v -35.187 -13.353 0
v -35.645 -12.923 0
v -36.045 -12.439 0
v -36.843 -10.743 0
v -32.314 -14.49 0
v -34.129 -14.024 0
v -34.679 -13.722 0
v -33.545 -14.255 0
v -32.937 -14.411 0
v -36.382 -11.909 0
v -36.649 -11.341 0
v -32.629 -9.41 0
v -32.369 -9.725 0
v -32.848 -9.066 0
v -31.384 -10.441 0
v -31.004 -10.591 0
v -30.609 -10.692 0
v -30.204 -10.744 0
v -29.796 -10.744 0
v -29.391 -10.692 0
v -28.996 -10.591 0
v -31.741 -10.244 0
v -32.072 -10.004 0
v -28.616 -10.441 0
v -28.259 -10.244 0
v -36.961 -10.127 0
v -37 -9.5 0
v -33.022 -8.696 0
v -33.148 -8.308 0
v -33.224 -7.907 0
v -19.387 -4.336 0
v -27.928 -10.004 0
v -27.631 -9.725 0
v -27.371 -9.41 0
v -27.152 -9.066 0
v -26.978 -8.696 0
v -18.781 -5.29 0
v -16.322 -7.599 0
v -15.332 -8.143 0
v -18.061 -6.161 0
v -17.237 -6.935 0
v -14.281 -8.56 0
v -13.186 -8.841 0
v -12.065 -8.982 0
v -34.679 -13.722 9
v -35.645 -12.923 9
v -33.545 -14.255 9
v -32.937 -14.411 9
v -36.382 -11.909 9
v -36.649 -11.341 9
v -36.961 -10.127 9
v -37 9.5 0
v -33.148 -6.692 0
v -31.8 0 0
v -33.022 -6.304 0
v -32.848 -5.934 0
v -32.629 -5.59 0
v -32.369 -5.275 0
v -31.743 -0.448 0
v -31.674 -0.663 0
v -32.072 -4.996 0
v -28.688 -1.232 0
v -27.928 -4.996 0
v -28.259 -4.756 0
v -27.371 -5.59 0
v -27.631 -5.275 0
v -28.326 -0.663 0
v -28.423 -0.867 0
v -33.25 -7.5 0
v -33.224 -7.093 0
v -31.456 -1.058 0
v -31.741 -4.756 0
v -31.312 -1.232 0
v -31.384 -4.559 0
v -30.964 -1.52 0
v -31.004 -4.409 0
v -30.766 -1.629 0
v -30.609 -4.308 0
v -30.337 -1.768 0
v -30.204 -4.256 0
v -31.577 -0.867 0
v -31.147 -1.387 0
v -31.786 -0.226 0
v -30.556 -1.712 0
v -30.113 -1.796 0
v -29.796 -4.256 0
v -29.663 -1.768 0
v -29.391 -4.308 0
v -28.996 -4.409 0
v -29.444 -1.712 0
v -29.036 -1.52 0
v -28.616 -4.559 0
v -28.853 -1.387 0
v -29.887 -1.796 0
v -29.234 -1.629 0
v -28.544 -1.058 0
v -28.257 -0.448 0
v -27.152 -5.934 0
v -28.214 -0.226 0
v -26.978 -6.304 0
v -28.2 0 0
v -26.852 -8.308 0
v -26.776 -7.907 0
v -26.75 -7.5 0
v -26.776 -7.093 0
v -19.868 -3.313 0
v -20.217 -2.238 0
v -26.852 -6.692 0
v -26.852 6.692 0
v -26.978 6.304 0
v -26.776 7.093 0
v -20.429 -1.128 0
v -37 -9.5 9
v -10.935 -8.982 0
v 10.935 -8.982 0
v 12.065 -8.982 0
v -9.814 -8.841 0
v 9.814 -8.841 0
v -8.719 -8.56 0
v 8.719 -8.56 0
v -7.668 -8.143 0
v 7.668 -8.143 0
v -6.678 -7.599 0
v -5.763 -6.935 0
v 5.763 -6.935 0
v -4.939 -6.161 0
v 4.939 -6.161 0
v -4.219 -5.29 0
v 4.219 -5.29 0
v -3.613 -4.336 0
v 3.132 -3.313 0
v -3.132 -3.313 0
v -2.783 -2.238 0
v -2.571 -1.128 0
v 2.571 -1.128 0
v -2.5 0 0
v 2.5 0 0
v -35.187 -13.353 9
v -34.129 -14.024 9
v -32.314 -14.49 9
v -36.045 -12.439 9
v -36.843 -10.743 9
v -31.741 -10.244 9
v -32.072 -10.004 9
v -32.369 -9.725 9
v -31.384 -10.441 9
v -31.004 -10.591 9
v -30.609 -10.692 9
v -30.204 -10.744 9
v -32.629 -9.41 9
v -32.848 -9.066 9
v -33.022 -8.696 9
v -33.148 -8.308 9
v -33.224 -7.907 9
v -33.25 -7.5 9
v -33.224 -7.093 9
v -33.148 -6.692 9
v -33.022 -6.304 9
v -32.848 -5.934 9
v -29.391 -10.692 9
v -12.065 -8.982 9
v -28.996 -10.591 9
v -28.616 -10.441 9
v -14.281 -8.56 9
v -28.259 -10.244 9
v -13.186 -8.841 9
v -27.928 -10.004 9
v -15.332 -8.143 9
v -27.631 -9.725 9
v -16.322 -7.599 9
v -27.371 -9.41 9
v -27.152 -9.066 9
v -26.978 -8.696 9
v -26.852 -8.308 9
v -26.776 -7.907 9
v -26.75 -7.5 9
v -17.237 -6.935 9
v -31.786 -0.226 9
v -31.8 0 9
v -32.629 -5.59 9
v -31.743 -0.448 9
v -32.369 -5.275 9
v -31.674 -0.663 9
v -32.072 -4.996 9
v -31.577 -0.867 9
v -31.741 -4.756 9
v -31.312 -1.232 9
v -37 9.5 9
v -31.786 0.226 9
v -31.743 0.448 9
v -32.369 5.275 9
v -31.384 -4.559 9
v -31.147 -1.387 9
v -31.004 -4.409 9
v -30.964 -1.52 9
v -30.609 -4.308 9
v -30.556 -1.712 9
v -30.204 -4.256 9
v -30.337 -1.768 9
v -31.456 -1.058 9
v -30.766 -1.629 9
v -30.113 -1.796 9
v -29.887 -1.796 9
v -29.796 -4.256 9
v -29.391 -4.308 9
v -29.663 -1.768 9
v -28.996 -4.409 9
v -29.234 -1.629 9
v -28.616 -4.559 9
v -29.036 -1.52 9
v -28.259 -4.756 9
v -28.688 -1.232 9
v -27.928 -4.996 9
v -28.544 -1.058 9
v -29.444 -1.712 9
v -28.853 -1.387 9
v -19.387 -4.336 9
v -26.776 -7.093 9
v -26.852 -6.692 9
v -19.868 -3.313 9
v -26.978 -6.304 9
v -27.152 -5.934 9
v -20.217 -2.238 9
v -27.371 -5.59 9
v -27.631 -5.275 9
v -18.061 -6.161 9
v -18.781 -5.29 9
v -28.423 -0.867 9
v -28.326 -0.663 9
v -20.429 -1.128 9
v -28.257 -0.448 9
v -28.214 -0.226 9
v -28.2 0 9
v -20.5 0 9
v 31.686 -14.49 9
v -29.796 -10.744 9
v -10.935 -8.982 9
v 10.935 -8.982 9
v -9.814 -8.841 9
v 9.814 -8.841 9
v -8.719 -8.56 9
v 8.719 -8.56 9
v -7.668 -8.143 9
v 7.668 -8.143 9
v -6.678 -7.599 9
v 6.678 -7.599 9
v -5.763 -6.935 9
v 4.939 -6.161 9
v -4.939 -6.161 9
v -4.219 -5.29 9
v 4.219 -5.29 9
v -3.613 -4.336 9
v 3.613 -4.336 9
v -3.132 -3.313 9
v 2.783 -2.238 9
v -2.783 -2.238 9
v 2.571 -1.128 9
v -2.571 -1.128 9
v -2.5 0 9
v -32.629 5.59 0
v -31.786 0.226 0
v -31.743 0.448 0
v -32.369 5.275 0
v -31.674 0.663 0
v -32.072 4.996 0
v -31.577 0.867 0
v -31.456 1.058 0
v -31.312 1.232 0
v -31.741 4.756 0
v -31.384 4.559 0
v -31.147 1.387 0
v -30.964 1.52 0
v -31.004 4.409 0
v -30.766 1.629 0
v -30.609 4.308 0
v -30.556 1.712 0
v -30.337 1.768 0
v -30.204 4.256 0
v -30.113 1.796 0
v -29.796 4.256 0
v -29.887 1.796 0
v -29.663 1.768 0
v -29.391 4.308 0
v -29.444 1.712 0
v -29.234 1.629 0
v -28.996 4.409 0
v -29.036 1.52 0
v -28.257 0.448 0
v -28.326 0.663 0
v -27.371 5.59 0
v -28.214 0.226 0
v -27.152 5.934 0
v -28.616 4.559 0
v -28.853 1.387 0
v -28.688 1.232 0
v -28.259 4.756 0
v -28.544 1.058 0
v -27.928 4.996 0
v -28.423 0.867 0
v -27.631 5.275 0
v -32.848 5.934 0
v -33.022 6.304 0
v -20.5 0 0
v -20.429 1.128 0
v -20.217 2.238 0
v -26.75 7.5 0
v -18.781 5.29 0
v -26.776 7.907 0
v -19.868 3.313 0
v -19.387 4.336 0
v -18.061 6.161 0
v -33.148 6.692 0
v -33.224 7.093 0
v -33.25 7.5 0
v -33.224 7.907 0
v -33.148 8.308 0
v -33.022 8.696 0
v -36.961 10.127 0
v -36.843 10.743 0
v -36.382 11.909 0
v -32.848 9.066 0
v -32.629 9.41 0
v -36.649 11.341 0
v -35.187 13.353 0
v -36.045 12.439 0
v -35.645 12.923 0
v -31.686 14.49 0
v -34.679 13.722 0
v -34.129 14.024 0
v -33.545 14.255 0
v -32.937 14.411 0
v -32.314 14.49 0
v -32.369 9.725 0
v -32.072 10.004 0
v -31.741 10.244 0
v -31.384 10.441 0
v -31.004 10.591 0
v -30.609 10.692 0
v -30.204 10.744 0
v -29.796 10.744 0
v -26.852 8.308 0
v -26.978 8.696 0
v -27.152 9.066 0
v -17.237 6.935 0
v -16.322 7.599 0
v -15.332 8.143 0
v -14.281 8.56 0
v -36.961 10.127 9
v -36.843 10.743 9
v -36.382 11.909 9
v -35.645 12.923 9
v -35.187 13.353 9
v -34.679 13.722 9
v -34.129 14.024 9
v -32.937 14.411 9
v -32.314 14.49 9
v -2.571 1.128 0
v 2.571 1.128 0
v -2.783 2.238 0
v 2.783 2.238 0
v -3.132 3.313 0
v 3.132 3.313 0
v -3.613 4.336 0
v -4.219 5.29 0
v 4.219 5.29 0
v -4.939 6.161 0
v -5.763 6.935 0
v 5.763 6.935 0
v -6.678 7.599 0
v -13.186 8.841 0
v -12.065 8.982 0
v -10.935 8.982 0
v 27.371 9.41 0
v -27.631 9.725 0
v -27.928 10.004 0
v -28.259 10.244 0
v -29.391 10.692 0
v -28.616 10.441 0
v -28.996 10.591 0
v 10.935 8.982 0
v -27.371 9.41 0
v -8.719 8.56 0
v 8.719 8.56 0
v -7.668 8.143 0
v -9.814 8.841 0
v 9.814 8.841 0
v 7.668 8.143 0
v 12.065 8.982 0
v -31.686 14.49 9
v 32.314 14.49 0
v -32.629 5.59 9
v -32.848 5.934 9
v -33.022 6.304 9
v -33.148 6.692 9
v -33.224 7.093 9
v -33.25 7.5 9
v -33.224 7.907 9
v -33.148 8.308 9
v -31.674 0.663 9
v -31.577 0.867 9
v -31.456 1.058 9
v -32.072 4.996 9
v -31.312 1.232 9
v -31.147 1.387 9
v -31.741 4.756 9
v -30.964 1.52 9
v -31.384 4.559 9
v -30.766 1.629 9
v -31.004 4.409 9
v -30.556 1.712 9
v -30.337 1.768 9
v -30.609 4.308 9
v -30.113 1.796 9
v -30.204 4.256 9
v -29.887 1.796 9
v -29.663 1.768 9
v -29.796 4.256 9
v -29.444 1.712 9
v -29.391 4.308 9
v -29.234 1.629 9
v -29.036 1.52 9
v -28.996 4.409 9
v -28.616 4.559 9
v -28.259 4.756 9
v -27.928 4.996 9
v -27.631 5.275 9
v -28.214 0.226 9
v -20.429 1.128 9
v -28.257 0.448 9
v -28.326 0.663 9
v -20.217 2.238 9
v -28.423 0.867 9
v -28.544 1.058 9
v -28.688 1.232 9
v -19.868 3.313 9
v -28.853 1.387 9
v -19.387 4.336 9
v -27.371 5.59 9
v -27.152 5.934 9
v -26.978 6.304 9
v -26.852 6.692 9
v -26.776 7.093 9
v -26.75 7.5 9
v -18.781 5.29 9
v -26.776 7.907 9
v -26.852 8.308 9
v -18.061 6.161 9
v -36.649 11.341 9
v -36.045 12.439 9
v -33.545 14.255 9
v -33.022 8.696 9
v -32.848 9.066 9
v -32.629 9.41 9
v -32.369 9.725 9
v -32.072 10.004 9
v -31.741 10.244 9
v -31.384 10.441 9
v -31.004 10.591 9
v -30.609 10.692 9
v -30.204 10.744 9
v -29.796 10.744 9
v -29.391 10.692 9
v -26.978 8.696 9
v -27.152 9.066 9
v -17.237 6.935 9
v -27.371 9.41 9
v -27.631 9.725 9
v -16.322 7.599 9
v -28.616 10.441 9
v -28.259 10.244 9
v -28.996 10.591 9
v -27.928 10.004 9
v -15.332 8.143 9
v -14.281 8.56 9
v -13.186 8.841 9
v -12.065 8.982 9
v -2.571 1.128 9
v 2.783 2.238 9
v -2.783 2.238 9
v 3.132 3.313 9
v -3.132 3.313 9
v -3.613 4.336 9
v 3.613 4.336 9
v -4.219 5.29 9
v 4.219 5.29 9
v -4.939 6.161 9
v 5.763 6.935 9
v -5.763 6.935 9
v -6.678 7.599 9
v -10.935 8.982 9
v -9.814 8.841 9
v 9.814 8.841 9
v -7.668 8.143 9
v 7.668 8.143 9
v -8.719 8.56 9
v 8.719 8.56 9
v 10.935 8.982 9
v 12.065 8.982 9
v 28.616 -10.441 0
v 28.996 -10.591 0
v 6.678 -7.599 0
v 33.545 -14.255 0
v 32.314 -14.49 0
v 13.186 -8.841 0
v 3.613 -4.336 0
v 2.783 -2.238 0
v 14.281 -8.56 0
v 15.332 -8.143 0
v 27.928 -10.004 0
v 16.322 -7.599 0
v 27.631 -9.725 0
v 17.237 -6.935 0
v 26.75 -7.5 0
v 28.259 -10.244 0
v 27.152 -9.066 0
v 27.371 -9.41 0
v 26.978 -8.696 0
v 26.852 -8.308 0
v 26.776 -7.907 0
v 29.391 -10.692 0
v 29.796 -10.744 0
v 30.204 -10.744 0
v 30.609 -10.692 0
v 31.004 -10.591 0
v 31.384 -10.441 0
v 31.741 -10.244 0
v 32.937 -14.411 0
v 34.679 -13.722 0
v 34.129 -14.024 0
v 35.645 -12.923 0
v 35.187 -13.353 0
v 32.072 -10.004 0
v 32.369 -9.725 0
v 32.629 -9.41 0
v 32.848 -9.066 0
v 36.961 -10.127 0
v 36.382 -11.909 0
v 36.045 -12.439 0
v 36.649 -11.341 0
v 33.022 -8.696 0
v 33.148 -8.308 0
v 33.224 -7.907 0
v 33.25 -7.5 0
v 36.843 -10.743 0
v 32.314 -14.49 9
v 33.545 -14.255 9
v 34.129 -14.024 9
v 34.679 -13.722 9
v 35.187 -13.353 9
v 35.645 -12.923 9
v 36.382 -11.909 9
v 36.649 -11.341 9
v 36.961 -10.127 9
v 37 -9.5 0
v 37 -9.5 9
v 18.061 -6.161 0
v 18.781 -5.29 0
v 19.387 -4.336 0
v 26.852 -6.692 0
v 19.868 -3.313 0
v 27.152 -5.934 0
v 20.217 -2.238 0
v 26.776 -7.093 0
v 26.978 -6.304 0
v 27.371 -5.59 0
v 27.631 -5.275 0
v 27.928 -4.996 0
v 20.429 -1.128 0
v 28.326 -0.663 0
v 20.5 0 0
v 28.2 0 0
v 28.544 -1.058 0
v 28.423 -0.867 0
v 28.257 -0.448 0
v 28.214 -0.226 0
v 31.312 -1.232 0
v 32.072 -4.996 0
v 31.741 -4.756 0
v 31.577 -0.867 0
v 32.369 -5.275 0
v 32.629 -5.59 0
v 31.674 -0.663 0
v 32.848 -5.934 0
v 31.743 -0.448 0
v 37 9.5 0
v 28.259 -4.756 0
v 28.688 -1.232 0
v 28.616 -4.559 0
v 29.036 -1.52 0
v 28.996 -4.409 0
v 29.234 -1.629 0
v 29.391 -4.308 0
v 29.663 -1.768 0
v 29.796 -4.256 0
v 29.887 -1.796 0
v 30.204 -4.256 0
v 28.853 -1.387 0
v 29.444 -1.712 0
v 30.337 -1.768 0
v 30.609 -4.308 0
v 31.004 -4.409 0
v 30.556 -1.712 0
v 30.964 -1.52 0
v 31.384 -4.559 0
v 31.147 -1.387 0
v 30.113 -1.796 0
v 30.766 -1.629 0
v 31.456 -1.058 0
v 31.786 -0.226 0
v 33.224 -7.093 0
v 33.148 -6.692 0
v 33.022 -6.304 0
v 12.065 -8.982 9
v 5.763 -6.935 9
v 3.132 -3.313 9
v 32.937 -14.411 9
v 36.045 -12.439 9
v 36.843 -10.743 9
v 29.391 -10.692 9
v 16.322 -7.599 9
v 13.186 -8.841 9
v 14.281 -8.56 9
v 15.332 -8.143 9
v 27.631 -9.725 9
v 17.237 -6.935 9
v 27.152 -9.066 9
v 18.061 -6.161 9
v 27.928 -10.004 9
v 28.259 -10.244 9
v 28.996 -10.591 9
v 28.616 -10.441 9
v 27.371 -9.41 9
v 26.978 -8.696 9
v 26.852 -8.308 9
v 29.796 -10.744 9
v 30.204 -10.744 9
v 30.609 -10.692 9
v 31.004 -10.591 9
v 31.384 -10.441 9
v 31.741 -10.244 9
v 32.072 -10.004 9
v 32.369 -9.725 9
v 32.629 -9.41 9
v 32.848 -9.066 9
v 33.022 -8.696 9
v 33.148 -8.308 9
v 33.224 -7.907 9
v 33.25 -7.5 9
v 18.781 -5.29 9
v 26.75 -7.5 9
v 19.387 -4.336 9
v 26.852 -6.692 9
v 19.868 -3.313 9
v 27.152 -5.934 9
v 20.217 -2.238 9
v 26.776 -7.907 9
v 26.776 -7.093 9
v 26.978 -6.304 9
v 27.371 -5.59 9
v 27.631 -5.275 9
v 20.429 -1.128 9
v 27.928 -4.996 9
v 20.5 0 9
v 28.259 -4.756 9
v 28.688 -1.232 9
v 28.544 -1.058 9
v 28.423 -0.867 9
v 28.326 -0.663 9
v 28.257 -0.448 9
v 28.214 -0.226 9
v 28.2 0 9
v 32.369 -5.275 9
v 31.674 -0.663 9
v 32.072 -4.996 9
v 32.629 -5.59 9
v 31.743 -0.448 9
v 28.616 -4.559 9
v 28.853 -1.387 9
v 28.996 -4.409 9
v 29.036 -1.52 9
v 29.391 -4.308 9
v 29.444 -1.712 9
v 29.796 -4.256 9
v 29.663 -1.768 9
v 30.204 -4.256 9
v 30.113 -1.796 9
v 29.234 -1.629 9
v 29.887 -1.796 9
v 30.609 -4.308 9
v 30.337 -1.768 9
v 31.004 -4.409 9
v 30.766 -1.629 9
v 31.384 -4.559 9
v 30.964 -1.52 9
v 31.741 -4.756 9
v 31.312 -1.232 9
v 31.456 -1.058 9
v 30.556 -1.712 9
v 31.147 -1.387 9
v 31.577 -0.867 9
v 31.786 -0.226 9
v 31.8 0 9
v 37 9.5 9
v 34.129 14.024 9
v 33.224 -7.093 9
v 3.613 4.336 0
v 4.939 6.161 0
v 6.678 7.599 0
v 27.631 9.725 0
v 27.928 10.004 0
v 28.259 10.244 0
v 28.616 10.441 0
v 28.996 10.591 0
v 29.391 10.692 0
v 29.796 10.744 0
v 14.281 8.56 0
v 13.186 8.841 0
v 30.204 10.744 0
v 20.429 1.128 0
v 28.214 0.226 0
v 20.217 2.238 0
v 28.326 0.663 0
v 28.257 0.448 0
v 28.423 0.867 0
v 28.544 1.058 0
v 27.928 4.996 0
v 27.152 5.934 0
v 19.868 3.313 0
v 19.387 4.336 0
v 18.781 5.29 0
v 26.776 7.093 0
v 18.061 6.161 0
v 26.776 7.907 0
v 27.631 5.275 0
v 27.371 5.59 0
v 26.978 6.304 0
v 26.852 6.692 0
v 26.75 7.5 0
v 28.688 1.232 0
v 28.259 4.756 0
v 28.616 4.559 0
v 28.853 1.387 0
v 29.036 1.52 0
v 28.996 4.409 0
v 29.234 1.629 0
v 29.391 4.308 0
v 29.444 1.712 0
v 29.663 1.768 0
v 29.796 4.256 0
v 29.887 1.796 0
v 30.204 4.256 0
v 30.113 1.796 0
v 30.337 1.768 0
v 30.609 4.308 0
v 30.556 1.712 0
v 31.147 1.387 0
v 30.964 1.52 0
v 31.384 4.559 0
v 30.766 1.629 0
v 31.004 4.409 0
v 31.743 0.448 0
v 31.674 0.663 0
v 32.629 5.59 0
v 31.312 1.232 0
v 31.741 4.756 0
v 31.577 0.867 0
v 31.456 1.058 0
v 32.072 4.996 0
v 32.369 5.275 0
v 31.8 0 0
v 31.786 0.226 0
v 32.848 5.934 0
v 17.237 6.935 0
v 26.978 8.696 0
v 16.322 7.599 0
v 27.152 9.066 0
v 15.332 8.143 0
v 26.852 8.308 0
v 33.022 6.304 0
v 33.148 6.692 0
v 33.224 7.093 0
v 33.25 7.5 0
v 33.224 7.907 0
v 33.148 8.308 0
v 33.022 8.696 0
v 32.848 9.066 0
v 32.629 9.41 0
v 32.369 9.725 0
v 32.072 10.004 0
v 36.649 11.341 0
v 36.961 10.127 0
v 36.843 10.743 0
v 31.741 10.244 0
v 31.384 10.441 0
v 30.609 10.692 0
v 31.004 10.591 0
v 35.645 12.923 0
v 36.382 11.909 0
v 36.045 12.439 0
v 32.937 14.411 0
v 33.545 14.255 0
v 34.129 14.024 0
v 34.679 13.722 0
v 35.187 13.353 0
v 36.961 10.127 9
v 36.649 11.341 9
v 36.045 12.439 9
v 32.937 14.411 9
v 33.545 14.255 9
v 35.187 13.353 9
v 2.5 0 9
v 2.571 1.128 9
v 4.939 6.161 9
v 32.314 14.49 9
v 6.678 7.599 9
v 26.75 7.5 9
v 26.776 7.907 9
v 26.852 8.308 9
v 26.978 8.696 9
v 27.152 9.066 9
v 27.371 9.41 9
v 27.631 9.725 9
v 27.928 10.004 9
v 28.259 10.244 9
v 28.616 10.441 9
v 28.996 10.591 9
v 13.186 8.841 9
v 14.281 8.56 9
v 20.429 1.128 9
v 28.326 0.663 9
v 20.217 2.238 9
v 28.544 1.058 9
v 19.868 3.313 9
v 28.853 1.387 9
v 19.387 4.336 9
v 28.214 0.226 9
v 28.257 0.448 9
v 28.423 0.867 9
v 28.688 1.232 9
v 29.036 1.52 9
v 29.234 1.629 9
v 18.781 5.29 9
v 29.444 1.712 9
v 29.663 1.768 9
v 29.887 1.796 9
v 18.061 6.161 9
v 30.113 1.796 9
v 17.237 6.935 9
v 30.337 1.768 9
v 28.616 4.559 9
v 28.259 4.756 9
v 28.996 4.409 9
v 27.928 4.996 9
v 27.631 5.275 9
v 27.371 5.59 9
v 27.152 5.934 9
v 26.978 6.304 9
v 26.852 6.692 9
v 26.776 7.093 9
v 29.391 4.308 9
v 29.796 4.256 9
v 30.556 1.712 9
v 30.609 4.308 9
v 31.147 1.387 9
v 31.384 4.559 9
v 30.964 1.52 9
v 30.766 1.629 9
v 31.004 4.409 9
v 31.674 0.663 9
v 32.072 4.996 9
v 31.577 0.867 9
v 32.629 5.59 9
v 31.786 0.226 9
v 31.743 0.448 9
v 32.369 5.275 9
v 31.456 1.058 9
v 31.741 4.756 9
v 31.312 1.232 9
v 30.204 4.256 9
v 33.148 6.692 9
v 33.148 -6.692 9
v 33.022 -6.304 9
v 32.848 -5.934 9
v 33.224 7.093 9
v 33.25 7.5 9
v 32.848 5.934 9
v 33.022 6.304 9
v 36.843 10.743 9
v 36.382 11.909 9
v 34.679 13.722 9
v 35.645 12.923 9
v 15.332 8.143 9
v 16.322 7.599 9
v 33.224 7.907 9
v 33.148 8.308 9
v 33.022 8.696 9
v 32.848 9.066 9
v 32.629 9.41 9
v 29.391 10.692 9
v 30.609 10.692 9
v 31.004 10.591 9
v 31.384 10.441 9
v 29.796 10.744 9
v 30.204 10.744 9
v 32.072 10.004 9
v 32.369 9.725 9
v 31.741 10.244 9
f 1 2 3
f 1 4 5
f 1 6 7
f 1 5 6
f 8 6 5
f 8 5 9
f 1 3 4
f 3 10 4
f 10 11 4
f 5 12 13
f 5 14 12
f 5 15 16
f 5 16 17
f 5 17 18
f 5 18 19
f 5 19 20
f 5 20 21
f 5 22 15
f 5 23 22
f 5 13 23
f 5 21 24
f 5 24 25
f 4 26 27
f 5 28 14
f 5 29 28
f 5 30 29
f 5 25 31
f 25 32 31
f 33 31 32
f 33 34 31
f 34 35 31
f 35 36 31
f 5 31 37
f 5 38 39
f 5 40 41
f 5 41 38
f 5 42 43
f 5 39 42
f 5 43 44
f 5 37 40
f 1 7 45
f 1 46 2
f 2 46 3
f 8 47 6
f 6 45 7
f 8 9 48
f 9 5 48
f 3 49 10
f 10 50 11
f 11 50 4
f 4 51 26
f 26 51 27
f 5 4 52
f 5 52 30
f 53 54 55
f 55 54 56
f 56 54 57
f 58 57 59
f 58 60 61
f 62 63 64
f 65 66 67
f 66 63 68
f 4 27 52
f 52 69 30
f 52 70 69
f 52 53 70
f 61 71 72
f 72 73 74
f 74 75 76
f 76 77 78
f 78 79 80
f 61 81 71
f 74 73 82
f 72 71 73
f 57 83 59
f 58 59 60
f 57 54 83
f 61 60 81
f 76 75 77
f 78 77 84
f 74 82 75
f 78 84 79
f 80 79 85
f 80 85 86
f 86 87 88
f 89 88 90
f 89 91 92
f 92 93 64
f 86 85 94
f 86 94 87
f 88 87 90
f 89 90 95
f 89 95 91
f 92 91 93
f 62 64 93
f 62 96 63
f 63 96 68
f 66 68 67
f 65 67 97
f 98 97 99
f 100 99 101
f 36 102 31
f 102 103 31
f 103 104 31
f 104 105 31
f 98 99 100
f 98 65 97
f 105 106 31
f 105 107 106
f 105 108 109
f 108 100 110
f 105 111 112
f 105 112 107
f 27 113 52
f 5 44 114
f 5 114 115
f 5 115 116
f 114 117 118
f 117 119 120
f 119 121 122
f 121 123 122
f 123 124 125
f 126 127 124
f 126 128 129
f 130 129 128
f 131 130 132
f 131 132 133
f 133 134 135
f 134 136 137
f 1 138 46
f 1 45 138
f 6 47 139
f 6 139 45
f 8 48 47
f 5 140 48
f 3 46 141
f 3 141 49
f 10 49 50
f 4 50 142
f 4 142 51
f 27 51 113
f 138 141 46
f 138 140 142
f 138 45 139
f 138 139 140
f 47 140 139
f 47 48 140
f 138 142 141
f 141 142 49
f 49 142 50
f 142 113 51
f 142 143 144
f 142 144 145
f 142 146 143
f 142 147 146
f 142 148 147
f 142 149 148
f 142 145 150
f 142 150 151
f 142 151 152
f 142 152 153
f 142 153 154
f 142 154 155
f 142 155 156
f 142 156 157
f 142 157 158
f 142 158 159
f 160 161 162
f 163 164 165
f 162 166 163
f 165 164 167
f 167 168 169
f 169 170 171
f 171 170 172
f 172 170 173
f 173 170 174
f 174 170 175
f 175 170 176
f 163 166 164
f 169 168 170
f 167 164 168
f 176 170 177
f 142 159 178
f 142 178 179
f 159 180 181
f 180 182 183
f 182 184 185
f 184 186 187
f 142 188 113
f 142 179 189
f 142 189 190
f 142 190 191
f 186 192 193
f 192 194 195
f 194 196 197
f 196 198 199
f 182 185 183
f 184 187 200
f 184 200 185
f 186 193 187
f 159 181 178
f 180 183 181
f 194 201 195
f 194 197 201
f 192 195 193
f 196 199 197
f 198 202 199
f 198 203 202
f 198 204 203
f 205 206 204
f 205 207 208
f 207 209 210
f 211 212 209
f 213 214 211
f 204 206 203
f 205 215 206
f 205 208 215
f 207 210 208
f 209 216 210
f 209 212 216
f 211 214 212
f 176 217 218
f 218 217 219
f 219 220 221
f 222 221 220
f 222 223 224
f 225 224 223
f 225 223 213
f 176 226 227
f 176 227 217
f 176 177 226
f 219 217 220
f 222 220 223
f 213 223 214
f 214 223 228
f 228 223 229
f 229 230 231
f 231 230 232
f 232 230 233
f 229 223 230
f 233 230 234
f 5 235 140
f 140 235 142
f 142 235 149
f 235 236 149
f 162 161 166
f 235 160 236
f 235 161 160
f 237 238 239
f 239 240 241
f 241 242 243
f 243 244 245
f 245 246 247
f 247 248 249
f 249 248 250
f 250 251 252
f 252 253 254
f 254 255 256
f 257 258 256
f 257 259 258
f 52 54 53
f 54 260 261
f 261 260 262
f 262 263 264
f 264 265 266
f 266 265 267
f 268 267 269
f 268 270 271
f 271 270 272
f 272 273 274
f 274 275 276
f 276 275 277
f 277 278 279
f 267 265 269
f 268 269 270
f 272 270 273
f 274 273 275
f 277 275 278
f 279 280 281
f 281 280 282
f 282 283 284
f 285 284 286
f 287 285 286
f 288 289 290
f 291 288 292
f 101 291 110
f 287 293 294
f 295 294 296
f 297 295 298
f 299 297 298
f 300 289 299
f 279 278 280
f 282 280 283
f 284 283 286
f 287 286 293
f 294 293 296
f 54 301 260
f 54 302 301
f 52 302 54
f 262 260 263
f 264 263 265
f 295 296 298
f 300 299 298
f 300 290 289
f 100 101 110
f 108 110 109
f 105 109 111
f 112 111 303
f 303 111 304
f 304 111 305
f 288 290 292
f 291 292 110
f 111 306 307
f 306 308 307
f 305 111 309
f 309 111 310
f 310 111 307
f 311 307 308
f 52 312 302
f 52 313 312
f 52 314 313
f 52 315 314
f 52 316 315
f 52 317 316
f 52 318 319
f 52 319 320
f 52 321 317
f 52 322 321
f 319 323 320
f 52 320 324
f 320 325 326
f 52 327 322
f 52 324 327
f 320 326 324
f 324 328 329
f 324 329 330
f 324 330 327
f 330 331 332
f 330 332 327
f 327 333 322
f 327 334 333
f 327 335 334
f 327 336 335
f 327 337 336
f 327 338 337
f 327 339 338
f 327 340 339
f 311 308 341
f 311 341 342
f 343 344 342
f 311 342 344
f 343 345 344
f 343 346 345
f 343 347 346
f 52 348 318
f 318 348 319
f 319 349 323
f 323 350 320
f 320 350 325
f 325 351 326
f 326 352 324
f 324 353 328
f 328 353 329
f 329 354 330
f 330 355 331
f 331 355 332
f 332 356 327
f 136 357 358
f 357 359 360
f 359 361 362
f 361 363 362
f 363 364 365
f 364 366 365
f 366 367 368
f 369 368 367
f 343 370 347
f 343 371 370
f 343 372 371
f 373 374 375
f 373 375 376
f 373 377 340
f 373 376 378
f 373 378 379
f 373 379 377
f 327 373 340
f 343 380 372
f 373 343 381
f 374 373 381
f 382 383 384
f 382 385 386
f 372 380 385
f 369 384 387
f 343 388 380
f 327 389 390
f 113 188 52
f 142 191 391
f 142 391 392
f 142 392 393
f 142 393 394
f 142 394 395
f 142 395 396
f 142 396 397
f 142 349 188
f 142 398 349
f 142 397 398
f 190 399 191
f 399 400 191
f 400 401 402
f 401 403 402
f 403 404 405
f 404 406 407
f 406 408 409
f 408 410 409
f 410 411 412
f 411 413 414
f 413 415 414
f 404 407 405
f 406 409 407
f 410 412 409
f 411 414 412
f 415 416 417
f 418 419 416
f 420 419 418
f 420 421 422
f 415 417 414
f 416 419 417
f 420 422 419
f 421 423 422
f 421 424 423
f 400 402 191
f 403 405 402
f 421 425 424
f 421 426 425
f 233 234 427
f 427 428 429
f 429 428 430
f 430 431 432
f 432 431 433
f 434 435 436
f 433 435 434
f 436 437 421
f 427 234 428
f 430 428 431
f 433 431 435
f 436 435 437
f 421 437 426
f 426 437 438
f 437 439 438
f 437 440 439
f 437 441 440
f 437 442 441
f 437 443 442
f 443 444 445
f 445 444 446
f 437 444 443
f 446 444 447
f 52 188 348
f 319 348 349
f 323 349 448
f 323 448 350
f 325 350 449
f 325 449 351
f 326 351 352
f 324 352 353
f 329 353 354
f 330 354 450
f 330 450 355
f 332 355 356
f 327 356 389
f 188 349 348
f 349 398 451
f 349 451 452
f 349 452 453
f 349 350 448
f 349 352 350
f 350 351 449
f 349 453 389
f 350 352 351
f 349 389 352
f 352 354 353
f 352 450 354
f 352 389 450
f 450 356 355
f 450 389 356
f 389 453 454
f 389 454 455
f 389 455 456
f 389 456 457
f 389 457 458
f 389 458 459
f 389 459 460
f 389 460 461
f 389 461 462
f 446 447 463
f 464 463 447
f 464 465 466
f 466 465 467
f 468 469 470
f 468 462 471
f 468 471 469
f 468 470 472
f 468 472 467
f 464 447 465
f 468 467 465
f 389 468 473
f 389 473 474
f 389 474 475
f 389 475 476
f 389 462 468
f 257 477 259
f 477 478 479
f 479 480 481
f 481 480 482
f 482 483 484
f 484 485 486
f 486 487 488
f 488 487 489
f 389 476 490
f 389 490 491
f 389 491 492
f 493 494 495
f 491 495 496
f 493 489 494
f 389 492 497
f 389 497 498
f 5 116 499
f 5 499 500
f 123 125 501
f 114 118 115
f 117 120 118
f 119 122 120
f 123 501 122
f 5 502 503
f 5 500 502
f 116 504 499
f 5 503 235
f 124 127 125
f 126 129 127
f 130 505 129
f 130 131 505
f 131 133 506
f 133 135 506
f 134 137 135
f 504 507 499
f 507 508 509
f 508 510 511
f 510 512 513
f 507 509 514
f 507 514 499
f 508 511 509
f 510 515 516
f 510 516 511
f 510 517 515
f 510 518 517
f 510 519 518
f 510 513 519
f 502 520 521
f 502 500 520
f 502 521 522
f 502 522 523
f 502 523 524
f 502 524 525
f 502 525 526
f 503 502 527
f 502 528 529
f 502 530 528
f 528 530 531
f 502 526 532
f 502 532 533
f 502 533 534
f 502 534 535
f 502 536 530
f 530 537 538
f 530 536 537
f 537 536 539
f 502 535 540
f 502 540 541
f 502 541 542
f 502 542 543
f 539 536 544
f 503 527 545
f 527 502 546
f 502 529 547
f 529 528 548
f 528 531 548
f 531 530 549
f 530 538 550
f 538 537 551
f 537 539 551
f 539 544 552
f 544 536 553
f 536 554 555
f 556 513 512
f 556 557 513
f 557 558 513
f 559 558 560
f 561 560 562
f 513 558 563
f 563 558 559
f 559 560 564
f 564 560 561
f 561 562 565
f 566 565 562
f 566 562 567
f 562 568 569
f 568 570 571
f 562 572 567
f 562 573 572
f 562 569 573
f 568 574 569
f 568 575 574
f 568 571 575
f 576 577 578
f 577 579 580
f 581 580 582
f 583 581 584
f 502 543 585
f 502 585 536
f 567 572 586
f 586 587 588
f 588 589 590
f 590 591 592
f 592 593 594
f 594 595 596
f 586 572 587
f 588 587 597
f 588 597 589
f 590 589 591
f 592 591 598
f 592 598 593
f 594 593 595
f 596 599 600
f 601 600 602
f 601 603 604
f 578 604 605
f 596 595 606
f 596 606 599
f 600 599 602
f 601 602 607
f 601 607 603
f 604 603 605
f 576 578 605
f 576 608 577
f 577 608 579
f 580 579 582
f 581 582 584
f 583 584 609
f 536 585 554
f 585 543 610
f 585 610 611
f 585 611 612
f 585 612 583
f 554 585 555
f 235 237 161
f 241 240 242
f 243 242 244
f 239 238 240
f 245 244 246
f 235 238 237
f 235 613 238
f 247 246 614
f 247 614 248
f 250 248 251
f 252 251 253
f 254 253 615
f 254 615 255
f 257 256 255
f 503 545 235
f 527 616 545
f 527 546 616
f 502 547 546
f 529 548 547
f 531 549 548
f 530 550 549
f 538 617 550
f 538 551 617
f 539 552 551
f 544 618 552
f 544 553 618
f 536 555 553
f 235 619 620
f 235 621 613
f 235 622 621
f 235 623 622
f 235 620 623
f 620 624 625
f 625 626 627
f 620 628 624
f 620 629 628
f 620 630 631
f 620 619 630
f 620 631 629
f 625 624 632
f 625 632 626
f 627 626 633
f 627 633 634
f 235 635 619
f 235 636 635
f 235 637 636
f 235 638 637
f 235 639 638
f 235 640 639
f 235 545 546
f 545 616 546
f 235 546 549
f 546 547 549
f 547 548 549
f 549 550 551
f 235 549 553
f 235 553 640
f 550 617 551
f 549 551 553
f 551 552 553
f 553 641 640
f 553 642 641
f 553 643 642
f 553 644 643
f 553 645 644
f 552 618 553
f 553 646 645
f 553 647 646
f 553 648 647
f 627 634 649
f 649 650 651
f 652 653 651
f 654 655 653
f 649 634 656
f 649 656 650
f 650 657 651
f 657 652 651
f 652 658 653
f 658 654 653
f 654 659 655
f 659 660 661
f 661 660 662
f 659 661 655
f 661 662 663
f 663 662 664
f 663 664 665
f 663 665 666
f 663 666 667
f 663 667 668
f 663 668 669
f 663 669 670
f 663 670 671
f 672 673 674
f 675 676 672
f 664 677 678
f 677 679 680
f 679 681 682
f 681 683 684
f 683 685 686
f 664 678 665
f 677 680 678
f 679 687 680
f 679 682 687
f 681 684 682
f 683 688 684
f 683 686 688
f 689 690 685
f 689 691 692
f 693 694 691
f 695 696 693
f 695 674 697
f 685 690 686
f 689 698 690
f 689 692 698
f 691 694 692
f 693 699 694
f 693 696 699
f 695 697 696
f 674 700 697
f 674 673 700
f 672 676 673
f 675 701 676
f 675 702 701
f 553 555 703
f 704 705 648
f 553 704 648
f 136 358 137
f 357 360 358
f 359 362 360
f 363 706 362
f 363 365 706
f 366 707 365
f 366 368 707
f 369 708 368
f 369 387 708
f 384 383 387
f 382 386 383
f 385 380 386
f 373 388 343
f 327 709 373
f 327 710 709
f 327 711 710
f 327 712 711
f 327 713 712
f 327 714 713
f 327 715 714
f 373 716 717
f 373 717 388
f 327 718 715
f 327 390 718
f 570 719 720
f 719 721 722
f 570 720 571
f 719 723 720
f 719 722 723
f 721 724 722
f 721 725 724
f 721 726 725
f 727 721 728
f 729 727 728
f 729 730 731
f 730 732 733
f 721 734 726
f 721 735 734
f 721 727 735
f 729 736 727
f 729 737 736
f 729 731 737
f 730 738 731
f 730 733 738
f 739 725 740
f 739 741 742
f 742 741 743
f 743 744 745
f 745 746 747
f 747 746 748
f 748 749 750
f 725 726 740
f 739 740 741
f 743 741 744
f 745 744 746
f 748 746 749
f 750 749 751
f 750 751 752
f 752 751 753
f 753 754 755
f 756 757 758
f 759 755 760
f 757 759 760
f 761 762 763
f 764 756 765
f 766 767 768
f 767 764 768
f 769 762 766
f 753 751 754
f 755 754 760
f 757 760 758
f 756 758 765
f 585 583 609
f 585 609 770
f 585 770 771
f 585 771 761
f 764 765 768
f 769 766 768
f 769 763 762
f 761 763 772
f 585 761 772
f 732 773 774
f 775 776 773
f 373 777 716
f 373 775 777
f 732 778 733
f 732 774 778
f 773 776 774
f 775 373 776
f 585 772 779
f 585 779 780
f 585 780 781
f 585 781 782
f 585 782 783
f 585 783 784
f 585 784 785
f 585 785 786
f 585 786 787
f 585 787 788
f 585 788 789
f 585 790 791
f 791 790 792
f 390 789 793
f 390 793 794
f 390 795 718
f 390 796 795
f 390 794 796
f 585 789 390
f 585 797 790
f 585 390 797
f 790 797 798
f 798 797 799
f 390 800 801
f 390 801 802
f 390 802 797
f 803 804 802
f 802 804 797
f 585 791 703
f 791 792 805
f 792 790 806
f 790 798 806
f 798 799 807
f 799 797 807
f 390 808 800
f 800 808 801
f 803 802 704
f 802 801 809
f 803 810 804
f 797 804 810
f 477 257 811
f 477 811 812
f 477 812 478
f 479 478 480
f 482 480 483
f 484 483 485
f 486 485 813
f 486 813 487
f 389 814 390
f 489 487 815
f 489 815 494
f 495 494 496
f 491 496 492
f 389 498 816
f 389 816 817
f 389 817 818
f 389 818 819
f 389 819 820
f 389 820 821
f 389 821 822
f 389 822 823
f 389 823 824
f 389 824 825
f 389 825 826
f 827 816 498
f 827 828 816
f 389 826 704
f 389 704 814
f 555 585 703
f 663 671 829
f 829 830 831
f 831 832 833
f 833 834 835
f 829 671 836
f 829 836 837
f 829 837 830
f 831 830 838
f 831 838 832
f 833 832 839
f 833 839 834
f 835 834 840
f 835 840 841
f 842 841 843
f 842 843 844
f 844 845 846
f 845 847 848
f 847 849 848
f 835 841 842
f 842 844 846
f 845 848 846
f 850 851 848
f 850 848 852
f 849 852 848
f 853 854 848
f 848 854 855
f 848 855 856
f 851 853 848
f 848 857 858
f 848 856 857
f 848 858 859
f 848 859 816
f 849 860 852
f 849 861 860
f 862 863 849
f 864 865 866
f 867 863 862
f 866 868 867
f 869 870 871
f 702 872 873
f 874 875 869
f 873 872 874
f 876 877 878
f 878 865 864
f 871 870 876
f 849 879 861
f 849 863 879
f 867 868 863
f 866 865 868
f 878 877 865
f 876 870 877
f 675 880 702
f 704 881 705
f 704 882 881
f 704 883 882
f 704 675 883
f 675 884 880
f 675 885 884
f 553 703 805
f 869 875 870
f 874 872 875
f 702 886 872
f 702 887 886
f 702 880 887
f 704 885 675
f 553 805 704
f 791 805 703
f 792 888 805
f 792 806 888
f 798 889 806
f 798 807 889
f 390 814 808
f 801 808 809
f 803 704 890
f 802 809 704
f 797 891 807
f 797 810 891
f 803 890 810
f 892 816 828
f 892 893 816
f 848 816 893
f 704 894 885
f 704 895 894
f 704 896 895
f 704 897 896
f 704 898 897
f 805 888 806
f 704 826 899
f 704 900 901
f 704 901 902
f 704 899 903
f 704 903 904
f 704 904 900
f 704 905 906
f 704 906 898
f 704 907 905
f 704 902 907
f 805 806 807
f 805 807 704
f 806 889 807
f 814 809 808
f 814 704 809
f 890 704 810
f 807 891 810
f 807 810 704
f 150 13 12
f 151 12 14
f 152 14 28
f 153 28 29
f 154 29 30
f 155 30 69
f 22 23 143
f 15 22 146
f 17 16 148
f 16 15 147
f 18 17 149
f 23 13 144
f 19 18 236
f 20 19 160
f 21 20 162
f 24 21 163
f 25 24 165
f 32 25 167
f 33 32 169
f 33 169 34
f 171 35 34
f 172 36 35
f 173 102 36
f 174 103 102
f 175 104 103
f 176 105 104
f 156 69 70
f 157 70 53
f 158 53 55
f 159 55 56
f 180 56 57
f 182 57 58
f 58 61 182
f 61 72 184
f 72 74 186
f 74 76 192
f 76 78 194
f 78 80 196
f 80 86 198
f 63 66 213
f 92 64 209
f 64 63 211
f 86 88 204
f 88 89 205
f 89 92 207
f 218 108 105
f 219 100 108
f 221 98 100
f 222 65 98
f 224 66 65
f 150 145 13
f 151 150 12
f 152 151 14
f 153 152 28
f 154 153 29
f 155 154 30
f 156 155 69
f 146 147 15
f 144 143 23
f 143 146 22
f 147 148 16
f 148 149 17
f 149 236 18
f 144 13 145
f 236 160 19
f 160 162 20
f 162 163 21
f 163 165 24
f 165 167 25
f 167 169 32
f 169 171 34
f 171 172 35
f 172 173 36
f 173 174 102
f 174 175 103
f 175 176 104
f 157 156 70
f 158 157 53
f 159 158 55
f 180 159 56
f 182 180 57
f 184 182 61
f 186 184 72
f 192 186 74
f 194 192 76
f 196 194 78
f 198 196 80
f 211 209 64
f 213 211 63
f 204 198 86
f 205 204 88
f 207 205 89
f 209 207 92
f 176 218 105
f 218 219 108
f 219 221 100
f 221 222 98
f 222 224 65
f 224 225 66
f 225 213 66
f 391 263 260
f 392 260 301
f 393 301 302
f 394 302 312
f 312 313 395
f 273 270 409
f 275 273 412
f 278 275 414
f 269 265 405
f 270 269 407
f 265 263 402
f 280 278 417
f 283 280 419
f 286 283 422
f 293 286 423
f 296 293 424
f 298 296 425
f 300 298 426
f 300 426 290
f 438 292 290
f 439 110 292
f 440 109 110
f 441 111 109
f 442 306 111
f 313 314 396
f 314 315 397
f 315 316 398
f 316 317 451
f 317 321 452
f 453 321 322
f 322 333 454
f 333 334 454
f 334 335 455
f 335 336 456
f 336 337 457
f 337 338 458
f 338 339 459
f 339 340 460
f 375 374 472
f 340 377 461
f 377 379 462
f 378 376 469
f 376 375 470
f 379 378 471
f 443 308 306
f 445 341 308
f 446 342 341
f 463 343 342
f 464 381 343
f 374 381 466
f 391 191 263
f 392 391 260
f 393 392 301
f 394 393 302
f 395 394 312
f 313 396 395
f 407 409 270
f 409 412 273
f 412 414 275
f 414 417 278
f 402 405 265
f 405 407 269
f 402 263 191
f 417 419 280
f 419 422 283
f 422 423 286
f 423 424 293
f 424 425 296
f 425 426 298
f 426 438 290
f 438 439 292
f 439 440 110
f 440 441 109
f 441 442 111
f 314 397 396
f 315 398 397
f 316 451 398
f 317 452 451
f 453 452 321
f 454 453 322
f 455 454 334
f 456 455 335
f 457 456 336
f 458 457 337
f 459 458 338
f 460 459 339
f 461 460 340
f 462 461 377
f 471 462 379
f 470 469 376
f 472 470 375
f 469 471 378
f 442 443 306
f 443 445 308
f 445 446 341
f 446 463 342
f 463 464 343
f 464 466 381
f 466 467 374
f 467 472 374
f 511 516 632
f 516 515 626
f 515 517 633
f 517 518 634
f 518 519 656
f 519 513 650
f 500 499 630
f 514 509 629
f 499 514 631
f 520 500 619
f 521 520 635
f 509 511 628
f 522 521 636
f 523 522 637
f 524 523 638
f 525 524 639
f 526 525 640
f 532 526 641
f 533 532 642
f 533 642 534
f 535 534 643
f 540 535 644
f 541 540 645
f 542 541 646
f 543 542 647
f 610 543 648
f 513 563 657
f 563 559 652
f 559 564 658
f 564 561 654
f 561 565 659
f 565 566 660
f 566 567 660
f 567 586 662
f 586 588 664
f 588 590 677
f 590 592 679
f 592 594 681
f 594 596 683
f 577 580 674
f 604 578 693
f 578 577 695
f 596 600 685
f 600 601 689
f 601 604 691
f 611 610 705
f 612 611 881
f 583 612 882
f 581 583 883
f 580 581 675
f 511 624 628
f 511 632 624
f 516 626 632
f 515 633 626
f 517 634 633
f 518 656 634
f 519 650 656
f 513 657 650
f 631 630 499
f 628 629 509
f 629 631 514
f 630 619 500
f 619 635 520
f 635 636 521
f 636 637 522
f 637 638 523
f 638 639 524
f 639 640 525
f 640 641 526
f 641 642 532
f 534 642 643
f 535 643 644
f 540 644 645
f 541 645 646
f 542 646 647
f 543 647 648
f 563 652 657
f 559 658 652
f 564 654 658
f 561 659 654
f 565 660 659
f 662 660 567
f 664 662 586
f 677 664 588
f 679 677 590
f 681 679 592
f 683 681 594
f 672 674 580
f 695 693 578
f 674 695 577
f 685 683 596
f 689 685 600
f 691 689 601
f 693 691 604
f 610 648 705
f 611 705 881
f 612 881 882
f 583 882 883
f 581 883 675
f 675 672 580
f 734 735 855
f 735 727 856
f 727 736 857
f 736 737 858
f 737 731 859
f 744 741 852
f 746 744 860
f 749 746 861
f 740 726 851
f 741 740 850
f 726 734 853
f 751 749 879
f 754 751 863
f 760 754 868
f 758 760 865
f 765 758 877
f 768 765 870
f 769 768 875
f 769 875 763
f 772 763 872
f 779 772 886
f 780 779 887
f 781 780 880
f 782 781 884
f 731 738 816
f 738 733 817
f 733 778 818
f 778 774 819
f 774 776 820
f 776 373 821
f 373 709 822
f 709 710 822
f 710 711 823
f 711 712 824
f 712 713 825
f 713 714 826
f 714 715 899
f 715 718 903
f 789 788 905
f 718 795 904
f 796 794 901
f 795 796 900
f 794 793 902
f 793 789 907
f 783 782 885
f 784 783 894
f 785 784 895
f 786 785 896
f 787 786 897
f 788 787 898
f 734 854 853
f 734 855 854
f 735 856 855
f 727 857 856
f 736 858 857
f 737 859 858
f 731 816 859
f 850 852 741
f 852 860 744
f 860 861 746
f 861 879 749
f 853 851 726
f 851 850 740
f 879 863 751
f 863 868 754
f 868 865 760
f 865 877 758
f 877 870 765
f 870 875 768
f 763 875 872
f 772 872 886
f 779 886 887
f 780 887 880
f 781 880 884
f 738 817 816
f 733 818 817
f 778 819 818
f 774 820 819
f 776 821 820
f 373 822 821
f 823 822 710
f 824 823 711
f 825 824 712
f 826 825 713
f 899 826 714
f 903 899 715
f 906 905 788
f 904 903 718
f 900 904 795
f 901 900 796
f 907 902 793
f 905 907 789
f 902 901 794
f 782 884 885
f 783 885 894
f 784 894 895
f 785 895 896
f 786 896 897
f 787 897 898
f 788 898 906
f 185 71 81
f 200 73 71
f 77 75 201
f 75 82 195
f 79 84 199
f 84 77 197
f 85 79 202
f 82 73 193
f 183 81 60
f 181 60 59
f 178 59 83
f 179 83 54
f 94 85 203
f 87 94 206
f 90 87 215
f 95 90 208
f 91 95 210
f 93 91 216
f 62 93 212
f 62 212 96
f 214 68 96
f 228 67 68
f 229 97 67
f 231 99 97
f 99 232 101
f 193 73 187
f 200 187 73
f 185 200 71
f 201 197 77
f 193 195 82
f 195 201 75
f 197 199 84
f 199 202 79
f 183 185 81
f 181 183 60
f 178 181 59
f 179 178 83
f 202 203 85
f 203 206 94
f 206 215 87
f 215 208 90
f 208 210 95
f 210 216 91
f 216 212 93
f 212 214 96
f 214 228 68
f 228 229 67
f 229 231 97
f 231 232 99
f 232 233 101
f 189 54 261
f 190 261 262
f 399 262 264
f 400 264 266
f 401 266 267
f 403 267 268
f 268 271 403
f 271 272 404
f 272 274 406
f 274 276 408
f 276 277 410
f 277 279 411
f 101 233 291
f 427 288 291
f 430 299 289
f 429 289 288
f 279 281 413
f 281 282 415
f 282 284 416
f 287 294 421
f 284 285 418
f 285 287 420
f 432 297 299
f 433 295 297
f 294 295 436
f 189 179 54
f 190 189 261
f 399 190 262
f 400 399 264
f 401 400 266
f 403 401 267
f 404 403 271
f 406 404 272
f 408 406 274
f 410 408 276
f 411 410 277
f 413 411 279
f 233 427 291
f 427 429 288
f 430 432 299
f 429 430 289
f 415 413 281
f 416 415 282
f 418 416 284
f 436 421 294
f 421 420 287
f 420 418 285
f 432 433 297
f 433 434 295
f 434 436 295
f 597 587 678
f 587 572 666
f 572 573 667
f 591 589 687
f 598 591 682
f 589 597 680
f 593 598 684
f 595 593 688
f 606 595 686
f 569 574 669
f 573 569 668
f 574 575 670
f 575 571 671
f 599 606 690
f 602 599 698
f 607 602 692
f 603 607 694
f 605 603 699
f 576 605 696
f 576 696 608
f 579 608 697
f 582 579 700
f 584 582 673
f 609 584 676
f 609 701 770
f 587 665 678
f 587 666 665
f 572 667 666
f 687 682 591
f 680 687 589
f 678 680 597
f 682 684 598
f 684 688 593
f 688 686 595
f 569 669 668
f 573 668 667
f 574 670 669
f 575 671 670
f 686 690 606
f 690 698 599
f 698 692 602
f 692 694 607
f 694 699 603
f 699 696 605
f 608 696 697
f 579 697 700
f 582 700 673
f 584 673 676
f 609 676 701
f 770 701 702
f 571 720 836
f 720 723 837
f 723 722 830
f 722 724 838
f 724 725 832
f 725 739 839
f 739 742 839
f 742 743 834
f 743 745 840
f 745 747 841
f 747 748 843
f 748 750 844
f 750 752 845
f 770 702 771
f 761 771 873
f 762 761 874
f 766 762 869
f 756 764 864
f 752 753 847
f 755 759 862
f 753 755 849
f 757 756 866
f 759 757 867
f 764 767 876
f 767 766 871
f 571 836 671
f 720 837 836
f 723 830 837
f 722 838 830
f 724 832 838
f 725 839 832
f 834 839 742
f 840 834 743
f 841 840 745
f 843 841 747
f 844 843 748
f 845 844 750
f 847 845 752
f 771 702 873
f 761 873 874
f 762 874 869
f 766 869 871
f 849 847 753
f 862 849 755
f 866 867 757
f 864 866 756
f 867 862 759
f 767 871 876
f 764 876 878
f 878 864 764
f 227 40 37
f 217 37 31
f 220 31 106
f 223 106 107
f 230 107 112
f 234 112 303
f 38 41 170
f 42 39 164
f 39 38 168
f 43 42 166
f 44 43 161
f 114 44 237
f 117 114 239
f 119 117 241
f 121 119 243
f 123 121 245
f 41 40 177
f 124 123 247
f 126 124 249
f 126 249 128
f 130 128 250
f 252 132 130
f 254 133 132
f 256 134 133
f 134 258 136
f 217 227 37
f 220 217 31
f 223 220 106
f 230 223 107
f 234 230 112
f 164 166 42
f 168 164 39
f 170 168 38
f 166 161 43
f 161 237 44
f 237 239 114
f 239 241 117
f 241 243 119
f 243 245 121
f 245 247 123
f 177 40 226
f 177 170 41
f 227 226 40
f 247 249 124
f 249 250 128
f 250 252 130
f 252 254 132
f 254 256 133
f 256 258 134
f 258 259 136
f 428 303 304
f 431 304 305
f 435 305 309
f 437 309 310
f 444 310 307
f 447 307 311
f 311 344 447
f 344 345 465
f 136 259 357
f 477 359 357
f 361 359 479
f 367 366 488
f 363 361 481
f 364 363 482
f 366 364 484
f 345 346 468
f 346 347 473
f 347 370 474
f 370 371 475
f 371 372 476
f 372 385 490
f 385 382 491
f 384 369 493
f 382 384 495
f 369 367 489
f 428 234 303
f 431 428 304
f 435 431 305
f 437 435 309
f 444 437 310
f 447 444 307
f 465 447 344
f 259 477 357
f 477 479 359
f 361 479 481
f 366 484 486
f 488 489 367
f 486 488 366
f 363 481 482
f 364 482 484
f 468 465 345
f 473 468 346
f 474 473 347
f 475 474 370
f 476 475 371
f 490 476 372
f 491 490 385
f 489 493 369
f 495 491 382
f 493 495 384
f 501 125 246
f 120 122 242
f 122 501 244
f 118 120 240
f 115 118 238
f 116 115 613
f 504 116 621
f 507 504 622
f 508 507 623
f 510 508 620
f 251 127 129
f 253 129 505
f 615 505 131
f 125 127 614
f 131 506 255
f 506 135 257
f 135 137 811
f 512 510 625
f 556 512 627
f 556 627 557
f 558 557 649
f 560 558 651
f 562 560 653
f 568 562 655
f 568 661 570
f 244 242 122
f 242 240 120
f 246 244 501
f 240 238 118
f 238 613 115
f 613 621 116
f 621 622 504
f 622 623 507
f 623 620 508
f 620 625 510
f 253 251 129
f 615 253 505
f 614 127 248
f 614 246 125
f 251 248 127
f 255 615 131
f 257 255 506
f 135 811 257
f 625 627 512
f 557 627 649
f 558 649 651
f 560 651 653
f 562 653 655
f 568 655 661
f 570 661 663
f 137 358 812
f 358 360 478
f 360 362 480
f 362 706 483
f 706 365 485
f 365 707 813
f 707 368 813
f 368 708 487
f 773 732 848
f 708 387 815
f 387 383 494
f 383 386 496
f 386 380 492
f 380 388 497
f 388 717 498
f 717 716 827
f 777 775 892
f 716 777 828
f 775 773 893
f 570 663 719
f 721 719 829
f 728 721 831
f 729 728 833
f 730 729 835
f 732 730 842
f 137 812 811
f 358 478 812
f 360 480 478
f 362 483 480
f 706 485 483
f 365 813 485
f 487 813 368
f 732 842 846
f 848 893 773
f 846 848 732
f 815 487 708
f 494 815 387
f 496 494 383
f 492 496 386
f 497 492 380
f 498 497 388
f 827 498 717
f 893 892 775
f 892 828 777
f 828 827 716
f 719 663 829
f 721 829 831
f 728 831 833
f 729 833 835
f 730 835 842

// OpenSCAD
$fn = 50;

difference() {
	union() {
		hull() {
			translate(v = [-32.0, 9.5, 0]) {
				cylinder(h = 9, r = 5);
			}
			translate(v = [32.0, 9.5, 0]) {
				cylinder(h = 9, r = 5);
			}
			translate(v = [-32.0, -9.5, 0]) {
				cylinder(h = 9, r = 5);
			}
			translate(v = [32.0, -9.5, 0]) {
				cylinder(h = 9, r = 5);
			}
		}
	}
	union() {
		translate(v = [-30.0, -7.5, 0]) {
			cylinder(h = 9, r = 3.25);
		}
		translate(v = [-30.0, 7.5, 0]) {
			cylinder(h = 9, r = 3.25);
		}
		translate(v = [30.0, -7.5, 0]) {
			cylinder(h = 9, r = 3.25);
		}
		translate(v = [30.0, 7.5, 0]) {
			cylinder(h = 9, r = 3.25);
		}
		translate(v = [-30.0, 0.0, 0]) {
			cylinder(h = 9, r = 1.8);
		}
		translate(v = [30.0, 0.0, 0]) {
			cylinder(h = 9, r = 1.8);
		}
		translate(v = [-11.5, 0, 0.0]) {
			cylinder(h = 9, r = 9.0);
		}
		translate(v = [11.5, 0, 0.0]) {
			cylinder(h = 9, r = 9.0);
		}
	}
}
